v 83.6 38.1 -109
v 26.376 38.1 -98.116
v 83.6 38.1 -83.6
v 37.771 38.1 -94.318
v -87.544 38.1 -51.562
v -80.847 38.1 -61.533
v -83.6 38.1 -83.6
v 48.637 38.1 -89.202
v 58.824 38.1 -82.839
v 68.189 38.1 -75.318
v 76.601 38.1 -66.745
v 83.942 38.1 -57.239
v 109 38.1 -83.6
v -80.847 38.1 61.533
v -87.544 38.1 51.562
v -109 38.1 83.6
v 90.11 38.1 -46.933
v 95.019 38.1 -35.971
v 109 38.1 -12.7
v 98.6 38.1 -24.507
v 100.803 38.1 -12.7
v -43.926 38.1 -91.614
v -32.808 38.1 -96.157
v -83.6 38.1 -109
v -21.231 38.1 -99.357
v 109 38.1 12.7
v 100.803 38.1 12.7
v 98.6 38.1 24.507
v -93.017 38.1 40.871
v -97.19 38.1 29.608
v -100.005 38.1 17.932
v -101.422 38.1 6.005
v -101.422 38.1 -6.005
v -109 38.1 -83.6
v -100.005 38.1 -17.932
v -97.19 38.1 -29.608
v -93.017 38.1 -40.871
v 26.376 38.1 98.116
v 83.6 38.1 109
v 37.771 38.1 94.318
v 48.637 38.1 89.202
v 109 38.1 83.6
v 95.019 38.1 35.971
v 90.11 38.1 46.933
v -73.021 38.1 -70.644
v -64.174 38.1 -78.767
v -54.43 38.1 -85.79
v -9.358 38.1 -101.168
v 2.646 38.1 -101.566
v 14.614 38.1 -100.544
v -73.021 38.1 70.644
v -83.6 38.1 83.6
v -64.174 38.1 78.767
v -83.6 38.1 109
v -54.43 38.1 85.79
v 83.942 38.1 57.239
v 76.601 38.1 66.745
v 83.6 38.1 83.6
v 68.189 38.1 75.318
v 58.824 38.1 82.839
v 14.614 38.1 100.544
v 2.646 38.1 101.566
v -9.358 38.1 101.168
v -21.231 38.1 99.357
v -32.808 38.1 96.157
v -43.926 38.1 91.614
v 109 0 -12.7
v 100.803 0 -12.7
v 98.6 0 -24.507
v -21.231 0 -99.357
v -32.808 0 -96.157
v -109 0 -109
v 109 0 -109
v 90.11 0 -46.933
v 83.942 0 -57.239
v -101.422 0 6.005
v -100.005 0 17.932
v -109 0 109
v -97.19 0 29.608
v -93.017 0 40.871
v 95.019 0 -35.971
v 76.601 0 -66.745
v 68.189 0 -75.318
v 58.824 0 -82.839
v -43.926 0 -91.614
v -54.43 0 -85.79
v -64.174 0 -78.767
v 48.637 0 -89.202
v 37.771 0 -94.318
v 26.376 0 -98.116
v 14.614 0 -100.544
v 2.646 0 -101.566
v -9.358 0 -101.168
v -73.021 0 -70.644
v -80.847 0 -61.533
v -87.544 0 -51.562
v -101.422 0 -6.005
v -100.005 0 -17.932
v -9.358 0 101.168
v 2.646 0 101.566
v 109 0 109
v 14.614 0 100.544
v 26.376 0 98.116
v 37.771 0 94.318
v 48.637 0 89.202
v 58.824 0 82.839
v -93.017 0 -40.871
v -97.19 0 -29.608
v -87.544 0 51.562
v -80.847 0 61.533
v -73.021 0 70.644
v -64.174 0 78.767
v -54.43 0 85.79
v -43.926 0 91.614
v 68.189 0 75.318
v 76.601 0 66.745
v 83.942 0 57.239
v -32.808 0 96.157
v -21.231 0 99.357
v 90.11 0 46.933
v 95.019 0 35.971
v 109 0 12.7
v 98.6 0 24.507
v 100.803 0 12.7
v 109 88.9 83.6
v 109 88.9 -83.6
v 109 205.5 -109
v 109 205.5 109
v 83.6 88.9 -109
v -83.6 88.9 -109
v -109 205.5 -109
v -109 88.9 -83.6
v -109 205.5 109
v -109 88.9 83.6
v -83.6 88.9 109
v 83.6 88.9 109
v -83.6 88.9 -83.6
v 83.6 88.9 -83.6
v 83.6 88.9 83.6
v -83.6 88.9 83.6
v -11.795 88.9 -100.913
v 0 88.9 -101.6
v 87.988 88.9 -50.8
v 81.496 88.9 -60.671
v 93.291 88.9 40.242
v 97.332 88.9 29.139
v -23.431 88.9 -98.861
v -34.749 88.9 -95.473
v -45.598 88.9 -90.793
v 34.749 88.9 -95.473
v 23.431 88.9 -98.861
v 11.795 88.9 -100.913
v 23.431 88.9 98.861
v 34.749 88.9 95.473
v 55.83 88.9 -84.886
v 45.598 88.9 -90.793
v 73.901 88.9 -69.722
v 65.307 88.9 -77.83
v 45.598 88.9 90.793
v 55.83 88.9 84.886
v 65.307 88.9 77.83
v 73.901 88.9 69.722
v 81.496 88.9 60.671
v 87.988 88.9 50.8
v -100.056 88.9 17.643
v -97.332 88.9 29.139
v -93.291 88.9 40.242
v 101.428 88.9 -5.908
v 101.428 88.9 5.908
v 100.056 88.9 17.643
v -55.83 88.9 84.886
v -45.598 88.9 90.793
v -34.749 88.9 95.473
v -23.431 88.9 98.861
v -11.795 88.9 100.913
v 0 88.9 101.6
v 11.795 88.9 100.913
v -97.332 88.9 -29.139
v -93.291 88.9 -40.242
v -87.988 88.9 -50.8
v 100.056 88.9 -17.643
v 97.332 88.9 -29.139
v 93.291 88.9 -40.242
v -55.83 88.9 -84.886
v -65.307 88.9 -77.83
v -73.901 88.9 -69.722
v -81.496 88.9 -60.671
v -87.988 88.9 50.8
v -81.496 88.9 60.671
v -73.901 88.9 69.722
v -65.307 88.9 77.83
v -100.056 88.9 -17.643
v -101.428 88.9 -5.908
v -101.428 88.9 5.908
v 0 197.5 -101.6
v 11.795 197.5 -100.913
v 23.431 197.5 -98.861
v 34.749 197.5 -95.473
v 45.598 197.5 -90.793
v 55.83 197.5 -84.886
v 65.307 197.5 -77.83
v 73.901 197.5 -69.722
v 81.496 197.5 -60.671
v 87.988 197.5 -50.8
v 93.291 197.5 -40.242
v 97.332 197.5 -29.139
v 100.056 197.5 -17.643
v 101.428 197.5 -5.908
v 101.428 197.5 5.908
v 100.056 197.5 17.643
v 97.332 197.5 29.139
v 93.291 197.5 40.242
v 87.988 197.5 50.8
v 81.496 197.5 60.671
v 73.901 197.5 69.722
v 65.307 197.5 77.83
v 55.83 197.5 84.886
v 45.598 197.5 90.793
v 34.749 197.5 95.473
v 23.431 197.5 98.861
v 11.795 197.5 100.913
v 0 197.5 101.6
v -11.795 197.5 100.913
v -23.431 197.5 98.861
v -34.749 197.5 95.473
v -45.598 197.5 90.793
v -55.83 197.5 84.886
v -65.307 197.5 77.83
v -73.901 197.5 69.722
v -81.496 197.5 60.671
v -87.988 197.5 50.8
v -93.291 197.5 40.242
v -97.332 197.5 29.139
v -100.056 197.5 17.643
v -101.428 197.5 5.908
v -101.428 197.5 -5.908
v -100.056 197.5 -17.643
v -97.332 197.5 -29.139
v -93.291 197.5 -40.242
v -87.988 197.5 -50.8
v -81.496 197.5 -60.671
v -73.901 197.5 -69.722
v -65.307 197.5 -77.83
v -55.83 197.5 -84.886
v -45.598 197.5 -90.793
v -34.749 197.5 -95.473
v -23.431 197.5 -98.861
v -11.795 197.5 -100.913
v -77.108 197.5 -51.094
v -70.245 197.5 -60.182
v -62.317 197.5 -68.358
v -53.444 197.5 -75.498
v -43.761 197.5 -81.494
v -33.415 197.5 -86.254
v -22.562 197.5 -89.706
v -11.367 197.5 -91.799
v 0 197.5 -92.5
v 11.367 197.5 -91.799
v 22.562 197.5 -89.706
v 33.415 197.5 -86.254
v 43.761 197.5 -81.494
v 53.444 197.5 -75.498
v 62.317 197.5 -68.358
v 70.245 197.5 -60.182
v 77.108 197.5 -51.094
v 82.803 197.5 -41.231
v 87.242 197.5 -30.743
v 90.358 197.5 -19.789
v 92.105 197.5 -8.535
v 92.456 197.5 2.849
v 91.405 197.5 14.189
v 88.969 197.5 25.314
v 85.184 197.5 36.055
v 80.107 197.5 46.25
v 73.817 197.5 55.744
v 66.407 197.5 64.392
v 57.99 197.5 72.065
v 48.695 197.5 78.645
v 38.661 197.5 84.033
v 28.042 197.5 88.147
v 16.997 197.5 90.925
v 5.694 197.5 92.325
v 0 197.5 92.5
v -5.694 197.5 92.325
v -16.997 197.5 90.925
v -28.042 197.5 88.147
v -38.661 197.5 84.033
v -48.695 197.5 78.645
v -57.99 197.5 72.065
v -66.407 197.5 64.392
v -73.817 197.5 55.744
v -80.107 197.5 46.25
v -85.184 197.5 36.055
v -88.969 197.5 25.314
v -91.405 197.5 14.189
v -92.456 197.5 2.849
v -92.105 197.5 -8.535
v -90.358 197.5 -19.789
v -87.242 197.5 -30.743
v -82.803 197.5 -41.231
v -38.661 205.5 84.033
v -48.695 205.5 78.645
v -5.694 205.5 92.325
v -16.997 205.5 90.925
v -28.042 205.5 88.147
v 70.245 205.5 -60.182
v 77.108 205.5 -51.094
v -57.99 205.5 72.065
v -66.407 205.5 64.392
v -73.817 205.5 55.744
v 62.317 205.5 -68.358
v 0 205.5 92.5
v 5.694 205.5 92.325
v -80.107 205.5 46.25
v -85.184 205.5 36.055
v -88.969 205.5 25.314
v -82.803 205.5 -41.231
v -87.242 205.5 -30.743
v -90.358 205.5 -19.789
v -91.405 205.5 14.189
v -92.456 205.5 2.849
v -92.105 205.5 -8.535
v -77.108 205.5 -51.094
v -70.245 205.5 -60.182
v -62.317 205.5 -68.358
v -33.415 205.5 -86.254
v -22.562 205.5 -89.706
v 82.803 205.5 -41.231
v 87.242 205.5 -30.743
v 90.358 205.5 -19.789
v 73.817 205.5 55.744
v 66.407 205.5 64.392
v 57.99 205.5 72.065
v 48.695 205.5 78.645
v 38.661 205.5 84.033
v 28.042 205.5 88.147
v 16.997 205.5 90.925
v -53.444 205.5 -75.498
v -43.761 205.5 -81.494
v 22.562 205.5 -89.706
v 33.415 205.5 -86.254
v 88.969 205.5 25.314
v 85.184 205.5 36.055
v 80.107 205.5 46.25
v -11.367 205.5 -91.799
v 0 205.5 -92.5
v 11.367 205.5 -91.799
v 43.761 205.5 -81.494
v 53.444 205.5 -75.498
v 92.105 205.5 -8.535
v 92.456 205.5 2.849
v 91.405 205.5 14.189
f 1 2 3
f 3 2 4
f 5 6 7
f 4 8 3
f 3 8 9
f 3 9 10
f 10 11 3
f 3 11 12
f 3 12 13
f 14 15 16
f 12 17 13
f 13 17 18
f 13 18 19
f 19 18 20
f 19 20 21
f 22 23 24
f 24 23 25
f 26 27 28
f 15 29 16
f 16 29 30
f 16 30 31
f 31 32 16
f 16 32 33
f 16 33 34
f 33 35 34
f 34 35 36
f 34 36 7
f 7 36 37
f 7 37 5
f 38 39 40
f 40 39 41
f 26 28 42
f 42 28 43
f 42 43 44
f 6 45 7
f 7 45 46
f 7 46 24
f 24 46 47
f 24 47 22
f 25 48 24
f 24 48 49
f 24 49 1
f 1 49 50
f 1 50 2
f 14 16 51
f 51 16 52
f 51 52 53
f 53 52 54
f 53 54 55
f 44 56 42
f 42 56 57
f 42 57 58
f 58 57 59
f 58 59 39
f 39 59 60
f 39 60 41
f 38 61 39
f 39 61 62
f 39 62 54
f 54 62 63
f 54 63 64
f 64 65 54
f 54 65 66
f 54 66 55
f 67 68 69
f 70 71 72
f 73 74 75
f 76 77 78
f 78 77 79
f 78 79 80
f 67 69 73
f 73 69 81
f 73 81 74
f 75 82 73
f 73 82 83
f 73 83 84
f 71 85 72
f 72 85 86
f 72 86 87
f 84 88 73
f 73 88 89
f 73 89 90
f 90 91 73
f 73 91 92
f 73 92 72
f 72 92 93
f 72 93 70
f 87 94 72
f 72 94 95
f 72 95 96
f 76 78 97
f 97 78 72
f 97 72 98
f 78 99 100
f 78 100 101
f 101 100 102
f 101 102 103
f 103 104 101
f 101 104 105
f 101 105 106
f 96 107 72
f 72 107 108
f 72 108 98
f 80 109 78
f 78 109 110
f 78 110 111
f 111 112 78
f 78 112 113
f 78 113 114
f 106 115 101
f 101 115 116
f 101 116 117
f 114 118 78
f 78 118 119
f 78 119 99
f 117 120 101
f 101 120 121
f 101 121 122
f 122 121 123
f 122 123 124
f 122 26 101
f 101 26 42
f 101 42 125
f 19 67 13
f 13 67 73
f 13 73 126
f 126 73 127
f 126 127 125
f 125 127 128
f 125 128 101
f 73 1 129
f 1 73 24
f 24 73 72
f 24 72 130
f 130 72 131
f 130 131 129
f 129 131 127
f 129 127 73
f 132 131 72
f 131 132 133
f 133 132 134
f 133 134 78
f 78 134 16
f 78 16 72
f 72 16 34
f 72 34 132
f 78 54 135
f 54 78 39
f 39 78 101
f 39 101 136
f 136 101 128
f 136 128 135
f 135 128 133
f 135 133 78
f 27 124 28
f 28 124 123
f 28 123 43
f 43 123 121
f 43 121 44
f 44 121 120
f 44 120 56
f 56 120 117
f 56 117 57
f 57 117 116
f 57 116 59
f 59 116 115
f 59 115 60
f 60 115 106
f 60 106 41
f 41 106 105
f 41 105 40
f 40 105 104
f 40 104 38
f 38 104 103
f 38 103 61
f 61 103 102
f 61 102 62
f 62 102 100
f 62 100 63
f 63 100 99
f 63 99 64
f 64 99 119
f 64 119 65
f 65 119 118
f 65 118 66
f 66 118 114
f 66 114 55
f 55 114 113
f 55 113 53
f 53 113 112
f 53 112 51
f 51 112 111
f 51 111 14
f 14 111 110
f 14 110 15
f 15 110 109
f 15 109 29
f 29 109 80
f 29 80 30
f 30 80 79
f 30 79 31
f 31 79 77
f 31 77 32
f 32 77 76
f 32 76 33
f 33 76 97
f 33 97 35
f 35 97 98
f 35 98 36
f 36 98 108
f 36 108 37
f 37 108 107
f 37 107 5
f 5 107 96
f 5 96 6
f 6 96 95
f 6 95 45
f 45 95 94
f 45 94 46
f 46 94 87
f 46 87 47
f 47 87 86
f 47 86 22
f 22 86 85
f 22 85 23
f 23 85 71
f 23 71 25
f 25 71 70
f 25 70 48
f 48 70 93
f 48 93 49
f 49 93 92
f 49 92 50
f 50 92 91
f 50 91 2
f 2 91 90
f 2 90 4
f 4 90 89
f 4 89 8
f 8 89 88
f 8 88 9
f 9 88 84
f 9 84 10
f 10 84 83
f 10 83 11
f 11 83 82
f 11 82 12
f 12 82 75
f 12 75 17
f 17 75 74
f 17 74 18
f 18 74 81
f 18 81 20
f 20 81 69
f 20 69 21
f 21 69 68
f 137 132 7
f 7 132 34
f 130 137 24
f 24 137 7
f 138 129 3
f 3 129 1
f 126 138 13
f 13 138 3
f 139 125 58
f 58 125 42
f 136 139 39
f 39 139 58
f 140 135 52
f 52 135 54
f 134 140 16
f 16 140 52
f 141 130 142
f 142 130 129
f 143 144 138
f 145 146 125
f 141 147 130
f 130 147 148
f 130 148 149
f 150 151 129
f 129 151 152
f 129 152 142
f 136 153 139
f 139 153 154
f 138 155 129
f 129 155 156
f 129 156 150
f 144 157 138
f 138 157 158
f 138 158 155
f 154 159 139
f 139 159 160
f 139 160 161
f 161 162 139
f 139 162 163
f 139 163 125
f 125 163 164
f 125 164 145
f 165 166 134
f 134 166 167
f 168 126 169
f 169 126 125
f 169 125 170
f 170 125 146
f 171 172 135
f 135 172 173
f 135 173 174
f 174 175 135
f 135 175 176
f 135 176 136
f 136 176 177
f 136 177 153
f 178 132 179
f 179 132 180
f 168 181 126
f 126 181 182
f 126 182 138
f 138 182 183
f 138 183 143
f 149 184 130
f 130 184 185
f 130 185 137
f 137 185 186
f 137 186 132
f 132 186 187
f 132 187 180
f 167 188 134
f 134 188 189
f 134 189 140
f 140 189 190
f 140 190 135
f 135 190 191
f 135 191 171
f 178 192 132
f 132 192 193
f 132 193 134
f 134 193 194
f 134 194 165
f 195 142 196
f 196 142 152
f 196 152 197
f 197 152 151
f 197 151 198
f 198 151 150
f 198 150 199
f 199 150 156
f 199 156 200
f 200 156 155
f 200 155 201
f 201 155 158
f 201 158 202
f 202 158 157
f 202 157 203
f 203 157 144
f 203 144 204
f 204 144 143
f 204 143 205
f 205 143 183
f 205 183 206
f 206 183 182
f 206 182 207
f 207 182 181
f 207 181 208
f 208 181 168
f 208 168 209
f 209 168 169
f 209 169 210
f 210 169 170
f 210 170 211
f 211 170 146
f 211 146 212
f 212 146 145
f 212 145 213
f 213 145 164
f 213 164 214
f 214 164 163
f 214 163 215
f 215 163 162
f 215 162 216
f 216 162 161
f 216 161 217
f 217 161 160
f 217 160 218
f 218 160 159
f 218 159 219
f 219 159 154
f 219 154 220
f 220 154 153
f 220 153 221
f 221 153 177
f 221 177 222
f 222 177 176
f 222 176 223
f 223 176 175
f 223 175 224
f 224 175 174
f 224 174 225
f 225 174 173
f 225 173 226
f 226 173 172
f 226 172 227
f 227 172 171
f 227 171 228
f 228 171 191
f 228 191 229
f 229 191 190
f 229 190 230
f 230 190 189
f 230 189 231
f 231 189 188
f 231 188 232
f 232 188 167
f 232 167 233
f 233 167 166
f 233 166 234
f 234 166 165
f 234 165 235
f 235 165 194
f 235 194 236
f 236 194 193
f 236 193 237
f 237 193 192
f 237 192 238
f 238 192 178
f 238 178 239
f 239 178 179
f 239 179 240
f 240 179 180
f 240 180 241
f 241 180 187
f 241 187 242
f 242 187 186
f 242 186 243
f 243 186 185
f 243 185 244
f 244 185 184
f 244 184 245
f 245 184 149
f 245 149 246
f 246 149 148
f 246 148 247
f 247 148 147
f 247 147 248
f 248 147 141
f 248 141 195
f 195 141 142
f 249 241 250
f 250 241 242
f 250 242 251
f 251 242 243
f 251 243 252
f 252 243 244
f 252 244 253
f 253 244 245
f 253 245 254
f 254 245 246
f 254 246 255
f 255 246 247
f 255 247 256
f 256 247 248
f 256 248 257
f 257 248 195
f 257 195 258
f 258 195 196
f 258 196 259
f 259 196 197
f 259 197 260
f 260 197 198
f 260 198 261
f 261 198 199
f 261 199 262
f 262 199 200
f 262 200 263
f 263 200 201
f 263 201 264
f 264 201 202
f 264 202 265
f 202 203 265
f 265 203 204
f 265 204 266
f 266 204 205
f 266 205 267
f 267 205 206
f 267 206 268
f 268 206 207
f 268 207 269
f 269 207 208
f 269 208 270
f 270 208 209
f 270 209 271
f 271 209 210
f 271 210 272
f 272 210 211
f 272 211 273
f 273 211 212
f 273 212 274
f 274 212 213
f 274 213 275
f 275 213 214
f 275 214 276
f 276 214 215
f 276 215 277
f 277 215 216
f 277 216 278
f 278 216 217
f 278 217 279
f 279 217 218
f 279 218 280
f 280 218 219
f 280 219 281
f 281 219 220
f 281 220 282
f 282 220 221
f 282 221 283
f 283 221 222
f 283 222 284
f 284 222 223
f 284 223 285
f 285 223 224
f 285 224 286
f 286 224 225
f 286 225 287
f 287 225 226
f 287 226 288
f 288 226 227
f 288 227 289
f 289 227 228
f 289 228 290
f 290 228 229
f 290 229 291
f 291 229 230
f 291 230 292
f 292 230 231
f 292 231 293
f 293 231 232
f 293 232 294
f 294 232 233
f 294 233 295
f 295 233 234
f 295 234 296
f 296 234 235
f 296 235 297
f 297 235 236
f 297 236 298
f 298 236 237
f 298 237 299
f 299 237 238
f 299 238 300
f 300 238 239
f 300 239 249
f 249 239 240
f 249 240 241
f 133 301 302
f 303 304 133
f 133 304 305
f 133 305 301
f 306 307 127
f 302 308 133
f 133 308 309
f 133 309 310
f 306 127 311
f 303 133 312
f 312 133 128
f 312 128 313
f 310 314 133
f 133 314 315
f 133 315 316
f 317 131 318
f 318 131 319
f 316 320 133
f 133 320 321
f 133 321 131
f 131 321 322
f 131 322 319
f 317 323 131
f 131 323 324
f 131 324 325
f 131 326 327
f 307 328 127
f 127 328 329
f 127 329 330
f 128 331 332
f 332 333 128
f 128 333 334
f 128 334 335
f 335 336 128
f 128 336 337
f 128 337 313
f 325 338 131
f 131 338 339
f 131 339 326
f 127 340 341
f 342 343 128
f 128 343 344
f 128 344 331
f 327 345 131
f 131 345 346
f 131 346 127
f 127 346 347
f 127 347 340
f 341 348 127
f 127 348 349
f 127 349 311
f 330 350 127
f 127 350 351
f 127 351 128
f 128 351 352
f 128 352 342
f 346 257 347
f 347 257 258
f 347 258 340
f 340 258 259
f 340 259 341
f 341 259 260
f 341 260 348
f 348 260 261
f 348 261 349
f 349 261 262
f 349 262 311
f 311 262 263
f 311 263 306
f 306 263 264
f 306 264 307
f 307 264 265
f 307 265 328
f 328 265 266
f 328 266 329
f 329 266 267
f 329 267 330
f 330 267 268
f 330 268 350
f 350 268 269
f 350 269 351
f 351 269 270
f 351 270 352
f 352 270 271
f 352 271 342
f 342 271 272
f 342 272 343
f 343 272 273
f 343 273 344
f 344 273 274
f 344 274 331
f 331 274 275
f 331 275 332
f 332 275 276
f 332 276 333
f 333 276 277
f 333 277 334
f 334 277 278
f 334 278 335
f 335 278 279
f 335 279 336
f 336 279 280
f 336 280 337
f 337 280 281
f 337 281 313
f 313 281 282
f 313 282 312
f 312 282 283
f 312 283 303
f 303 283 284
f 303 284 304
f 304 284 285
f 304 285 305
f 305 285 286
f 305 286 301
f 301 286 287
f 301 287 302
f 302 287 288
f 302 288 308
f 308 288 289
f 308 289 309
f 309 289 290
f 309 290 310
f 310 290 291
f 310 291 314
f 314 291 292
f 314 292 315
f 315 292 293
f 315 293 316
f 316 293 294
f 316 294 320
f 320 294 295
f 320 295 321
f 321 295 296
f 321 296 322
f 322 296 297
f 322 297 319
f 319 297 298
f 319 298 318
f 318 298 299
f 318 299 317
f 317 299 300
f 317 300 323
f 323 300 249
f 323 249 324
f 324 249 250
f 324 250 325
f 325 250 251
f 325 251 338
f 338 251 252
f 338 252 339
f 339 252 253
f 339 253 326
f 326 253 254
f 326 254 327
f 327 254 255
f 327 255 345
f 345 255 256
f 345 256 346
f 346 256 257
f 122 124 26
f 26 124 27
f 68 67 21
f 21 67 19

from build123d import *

# Parameters (mm, degrees)
SKETCH1_W           = 218
SKETCH1_H           = 218
SKETCH1_R           = 101.6
BOSS_EXTRUDE1_DEPTH = 38.1
SKETCH2_W           = 25.4
SKETCH2_H           = 25.4
BOSS_EXTRUDE2_DEPTH = 50.8
SKETCH3_W           = 218
SKETCH3_H           = 218
SKETCH3_R           = 101.6
BOSS_EXTRUDE3_DEPTH = 108.6
SKETCH4_W           = 218
SKETCH4_H           = 218
SKETCH4_R           = 92.5
BOSS_EXTRUDE4_DEPTH = 8
CUT_EXTRUDE1_REACH  = 258.89
SKETCH5_W           = 16.393750096
SKETCH5_H           = 25.4


with BuildPart() as part:
    # Sketch1 → Boss-Extrude1 (new body)
    with BuildSketch(Plane(origin=(0, 0, 0), x_dir=(1, 0, 0), z_dir=(0, 1, 0))):
        Rectangle(SKETCH1_W, SKETCH1_H)
        with Locations(Location((0, 0, 0), (0, 0, 90))):
            Circle(SKETCH1_R, mode=Mode.SUBTRACT)
    extrude(amount=BOSS_EXTRUDE1_DEPTH)

    # Sketch2 → Boss-Extrude2 (add)
    with BuildSketch(Plane(origin=(0, 38.1, 0), x_dir=(1, 0, 0), z_dir=(0, 1, 0))):
        with Locations((-96.3, 96.3)):
            Rectangle(SKETCH2_W, SKETCH2_H)
        with Locations((96.3, 96.3)):
            Rectangle(SKETCH2_W, SKETCH2_H)
        with Locations((96.3, -96.3)):
            Rectangle(SKETCH2_W, SKETCH2_H)
        with Locations((-96.3, -96.3)):
            Rectangle(SKETCH2_W, SKETCH2_H)
    extrude(amount=BOSS_EXTRUDE2_DEPTH)

    # Sketch3 → Boss-Extrude3 (add)
    with BuildSketch(Plane(origin=(0, 88.9, 0), x_dir=(1, 0, 0), z_dir=(0, 1, 0))):
        Rectangle(SKETCH3_W, SKETCH3_H)
        with Locations(Location((0, 0, 0), (0, 0, 90))):
            Circle(SKETCH3_R, mode=Mode.SUBTRACT)
    extrude(amount=BOSS_EXTRUDE3_DEPTH)

    # Sketch4 → Boss-Extrude4 (add)
    with BuildSketch(Plane(origin=(0, 197.5, 0), x_dir=(1, 0, 0), z_dir=(0, 1, 0))):
        Rectangle(SKETCH4_W, SKETCH4_H)
        with Locations(Location((0, 0, 0), (0, 0, 270))):
            Circle(SKETCH4_R, mode=Mode.SUBTRACT)
    extrude(amount=BOSS_EXTRUDE4_DEPTH)

    # Sketch5 → Cut-Extrude1 (cut, up to next)
    with BuildSketch(Plane.XZ, mode=Mode.PRIVATE) as cut_extrude1_sk1:
        with Locations((109, 0)):
            Rectangle(SKETCH5_W, SKETCH5_H)
    cut_extrude1_tool1 = extrude(cut_extrude1_sk1.sketch, amount=-CUT_EXTRUDE1_REACH, mode=Mode.PRIVATE) & part.part
    add(cut_extrude1_tool1.solids().sort_by_distance((109, 0, 0))[0], mode=Mode.SUBTRACT)


solid = part.part
